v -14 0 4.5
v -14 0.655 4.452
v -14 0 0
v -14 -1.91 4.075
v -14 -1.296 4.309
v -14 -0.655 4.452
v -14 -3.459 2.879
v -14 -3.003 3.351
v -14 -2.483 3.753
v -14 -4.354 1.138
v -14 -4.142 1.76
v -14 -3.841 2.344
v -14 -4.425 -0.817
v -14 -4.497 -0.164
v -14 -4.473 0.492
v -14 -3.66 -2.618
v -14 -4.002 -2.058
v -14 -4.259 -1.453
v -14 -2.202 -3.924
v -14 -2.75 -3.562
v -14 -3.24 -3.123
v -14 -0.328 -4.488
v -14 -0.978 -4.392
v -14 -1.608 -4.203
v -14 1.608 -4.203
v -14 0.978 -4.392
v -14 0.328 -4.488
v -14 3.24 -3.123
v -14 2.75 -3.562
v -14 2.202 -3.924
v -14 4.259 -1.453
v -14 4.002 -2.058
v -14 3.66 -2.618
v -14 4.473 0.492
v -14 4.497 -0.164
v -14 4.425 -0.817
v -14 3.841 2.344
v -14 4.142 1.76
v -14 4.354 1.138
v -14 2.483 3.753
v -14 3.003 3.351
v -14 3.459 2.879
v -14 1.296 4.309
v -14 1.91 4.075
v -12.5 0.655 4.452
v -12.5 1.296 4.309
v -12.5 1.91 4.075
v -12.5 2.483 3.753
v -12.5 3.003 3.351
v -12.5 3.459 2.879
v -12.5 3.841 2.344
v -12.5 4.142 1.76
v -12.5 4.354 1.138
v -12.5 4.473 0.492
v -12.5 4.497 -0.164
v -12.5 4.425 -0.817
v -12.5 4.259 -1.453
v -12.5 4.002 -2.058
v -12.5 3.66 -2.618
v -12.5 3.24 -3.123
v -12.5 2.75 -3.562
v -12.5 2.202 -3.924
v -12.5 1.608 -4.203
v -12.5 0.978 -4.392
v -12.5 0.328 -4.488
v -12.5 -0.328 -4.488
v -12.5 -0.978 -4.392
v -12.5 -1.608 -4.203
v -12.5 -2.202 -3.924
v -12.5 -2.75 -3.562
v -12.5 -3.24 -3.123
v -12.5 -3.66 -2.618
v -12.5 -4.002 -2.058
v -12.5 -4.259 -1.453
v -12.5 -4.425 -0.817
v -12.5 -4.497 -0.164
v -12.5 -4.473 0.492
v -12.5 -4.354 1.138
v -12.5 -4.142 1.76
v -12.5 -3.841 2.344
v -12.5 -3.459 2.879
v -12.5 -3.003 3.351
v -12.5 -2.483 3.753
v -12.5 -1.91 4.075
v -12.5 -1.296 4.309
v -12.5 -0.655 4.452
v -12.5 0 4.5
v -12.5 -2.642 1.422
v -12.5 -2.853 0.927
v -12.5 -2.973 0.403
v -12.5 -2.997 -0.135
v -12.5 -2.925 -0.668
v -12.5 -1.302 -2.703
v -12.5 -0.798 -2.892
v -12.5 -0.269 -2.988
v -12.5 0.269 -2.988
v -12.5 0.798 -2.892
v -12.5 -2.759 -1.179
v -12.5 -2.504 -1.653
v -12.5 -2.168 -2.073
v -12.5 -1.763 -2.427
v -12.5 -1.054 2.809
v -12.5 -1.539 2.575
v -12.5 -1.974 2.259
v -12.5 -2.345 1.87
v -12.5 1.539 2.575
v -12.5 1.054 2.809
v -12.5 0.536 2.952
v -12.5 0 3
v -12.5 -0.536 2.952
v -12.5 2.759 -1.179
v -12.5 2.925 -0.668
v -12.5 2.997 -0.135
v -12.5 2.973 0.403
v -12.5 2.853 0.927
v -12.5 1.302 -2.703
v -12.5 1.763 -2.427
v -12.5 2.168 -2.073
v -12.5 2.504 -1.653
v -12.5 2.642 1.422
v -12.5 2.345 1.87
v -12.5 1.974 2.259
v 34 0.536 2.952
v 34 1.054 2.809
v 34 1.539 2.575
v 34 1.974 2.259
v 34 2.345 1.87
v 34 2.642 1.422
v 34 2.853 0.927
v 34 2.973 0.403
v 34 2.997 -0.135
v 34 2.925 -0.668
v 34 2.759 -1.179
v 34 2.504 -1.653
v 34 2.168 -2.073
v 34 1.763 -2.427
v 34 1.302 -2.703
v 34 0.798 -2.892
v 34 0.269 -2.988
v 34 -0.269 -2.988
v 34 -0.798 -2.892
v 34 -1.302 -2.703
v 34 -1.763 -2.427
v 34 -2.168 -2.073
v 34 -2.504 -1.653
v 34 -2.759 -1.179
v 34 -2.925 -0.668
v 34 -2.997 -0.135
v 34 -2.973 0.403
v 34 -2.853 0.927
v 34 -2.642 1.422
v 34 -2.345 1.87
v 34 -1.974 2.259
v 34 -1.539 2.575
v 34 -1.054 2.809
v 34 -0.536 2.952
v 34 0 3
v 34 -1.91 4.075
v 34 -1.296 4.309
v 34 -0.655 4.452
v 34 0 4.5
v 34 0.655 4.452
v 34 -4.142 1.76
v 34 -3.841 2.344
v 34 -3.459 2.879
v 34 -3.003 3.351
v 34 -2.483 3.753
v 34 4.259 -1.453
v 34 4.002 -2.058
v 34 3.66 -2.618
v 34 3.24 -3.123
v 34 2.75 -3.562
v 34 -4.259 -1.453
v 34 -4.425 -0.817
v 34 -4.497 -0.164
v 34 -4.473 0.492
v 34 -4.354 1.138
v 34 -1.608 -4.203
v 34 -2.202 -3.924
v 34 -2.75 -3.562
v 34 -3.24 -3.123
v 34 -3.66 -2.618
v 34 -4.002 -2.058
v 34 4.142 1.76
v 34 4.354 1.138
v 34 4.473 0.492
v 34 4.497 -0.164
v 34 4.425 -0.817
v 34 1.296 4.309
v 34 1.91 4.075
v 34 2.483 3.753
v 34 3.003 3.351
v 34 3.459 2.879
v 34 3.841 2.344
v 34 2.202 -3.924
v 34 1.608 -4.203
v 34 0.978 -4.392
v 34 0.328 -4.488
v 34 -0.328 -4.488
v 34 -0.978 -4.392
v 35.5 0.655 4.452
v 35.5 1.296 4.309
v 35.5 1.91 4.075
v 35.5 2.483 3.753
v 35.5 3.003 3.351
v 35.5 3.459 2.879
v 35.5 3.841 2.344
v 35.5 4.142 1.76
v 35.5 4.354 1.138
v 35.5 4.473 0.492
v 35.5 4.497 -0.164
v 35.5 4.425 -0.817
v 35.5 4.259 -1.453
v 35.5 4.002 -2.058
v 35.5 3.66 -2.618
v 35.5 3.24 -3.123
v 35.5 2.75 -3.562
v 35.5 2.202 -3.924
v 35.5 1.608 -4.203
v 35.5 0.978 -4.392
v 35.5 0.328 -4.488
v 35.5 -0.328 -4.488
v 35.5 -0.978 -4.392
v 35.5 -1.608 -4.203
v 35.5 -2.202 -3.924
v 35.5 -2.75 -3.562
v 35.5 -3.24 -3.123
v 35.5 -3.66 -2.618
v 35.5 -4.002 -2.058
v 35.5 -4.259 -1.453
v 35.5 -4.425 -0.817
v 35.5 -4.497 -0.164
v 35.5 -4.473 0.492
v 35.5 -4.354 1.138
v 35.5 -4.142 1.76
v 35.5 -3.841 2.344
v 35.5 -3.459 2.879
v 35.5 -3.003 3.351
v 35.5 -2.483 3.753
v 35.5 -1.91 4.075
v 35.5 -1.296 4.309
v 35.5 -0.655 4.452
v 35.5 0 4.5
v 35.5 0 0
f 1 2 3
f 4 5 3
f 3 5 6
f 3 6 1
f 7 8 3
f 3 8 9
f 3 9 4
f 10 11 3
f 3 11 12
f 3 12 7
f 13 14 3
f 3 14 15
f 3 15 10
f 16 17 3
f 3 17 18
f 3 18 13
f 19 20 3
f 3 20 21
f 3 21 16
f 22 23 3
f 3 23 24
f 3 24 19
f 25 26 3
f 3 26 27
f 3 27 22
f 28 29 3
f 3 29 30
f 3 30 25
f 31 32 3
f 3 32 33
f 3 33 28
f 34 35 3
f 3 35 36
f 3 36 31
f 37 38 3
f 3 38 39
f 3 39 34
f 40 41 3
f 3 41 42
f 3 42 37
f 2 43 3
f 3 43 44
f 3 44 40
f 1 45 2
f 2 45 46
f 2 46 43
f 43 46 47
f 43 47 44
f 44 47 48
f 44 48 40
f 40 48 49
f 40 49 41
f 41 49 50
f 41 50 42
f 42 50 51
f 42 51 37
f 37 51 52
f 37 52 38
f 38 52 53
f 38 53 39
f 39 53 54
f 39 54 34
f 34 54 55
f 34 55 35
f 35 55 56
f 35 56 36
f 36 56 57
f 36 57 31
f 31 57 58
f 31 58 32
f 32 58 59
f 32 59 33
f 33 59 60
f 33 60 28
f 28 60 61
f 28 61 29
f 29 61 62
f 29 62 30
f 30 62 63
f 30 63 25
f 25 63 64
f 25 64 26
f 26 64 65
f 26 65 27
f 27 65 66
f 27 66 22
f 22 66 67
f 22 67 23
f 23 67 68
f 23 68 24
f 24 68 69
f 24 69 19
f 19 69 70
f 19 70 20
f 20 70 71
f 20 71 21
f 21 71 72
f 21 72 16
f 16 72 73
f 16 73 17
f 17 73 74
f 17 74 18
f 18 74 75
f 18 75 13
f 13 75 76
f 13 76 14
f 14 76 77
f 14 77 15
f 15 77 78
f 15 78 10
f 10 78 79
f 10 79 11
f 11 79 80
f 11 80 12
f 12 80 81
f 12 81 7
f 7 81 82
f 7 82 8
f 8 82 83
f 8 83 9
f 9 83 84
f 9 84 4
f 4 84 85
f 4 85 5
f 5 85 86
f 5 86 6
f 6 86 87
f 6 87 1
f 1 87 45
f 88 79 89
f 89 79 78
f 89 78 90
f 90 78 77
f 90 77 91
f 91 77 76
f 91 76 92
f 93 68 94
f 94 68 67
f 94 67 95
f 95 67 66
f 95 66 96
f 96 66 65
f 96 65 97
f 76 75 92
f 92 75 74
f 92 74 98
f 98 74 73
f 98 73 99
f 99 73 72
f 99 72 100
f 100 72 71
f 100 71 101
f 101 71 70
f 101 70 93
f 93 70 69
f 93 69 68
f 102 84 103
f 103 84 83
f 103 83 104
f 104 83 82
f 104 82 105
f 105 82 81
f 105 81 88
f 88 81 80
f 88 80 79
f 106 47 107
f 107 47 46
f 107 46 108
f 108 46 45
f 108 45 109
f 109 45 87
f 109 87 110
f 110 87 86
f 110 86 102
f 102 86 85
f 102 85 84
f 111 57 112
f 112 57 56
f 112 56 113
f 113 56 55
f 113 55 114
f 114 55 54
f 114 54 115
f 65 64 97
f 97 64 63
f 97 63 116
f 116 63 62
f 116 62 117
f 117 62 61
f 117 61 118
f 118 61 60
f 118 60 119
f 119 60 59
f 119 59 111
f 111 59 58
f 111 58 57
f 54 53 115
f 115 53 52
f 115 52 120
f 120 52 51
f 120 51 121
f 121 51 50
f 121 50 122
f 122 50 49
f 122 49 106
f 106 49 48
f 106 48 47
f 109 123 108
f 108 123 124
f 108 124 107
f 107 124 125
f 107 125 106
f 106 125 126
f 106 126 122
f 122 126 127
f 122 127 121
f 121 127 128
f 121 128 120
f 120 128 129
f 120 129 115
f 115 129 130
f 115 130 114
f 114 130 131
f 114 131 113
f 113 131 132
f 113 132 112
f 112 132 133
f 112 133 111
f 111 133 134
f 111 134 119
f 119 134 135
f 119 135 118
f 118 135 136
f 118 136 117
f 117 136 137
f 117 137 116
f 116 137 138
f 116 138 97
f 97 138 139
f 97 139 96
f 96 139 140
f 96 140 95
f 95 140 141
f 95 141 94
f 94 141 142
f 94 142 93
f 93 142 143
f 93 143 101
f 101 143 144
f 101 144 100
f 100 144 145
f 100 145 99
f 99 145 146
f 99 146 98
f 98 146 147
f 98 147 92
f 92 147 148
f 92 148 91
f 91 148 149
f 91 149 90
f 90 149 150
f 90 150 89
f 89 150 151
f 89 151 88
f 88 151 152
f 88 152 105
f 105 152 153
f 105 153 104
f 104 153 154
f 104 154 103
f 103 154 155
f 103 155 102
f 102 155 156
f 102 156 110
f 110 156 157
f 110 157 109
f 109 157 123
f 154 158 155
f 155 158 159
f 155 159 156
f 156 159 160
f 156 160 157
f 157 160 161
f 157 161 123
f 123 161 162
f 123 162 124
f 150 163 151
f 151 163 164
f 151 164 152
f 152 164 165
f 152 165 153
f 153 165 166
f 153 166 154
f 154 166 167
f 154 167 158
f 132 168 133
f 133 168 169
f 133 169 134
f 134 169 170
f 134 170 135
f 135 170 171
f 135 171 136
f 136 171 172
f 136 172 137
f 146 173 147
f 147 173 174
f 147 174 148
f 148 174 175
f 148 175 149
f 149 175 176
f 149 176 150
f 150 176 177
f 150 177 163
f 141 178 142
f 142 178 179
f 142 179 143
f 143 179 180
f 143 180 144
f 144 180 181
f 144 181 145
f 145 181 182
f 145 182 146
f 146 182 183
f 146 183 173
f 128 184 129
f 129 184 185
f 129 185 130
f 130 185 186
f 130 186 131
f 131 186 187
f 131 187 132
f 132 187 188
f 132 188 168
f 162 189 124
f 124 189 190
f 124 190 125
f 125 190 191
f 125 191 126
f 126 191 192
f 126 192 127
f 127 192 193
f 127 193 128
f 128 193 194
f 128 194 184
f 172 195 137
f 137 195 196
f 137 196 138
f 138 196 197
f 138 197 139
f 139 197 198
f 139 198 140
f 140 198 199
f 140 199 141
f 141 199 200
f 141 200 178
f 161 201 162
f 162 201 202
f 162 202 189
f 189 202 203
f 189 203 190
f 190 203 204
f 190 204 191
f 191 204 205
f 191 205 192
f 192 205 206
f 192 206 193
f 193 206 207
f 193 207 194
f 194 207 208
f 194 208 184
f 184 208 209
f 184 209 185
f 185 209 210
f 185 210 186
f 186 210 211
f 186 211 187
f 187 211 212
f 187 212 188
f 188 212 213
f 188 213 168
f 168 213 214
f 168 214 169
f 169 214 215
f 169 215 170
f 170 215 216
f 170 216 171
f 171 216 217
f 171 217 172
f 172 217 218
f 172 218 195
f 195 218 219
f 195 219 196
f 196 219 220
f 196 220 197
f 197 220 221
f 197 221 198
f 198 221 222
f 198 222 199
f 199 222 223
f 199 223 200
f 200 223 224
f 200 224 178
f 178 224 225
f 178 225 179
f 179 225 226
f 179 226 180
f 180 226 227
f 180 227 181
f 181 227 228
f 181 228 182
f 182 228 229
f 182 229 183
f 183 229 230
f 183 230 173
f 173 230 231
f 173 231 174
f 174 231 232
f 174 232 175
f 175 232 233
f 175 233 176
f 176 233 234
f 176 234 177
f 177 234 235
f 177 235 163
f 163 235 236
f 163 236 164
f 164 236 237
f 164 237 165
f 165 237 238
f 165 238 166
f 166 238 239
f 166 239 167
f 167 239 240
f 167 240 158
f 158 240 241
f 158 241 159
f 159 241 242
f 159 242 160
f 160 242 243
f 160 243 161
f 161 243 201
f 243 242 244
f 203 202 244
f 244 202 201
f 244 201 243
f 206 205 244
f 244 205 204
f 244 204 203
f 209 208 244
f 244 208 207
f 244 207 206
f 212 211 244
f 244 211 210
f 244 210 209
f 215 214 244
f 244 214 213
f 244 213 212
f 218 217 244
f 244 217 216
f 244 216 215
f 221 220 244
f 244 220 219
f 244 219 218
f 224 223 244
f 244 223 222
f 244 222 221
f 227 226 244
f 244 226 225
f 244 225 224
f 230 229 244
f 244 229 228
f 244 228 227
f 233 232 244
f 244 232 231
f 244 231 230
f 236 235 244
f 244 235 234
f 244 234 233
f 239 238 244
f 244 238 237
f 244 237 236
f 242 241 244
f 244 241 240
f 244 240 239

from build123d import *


with BuildPart() as part:
    # Sketch1 → Pasador_codo (revolve)
    with BuildSketch(Plane.XY, mode=Mode.PRIVATE) as pasador_codo_sk:
        Polygon((-14, 0), (-14, 4.5), (-12.5, 4.5), (-12.5, 3), (34, 3), (34, 4.5), (35.5, 4.5), (35.5, 0), align=None)
    revolve(pasador_codo_sk.sketch.rotate(Axis((-18, 0, 0), (1, 0, 0)), 90), axis=Axis((-18, 0, 0), (1, 0, 0)))


solid = part.part
